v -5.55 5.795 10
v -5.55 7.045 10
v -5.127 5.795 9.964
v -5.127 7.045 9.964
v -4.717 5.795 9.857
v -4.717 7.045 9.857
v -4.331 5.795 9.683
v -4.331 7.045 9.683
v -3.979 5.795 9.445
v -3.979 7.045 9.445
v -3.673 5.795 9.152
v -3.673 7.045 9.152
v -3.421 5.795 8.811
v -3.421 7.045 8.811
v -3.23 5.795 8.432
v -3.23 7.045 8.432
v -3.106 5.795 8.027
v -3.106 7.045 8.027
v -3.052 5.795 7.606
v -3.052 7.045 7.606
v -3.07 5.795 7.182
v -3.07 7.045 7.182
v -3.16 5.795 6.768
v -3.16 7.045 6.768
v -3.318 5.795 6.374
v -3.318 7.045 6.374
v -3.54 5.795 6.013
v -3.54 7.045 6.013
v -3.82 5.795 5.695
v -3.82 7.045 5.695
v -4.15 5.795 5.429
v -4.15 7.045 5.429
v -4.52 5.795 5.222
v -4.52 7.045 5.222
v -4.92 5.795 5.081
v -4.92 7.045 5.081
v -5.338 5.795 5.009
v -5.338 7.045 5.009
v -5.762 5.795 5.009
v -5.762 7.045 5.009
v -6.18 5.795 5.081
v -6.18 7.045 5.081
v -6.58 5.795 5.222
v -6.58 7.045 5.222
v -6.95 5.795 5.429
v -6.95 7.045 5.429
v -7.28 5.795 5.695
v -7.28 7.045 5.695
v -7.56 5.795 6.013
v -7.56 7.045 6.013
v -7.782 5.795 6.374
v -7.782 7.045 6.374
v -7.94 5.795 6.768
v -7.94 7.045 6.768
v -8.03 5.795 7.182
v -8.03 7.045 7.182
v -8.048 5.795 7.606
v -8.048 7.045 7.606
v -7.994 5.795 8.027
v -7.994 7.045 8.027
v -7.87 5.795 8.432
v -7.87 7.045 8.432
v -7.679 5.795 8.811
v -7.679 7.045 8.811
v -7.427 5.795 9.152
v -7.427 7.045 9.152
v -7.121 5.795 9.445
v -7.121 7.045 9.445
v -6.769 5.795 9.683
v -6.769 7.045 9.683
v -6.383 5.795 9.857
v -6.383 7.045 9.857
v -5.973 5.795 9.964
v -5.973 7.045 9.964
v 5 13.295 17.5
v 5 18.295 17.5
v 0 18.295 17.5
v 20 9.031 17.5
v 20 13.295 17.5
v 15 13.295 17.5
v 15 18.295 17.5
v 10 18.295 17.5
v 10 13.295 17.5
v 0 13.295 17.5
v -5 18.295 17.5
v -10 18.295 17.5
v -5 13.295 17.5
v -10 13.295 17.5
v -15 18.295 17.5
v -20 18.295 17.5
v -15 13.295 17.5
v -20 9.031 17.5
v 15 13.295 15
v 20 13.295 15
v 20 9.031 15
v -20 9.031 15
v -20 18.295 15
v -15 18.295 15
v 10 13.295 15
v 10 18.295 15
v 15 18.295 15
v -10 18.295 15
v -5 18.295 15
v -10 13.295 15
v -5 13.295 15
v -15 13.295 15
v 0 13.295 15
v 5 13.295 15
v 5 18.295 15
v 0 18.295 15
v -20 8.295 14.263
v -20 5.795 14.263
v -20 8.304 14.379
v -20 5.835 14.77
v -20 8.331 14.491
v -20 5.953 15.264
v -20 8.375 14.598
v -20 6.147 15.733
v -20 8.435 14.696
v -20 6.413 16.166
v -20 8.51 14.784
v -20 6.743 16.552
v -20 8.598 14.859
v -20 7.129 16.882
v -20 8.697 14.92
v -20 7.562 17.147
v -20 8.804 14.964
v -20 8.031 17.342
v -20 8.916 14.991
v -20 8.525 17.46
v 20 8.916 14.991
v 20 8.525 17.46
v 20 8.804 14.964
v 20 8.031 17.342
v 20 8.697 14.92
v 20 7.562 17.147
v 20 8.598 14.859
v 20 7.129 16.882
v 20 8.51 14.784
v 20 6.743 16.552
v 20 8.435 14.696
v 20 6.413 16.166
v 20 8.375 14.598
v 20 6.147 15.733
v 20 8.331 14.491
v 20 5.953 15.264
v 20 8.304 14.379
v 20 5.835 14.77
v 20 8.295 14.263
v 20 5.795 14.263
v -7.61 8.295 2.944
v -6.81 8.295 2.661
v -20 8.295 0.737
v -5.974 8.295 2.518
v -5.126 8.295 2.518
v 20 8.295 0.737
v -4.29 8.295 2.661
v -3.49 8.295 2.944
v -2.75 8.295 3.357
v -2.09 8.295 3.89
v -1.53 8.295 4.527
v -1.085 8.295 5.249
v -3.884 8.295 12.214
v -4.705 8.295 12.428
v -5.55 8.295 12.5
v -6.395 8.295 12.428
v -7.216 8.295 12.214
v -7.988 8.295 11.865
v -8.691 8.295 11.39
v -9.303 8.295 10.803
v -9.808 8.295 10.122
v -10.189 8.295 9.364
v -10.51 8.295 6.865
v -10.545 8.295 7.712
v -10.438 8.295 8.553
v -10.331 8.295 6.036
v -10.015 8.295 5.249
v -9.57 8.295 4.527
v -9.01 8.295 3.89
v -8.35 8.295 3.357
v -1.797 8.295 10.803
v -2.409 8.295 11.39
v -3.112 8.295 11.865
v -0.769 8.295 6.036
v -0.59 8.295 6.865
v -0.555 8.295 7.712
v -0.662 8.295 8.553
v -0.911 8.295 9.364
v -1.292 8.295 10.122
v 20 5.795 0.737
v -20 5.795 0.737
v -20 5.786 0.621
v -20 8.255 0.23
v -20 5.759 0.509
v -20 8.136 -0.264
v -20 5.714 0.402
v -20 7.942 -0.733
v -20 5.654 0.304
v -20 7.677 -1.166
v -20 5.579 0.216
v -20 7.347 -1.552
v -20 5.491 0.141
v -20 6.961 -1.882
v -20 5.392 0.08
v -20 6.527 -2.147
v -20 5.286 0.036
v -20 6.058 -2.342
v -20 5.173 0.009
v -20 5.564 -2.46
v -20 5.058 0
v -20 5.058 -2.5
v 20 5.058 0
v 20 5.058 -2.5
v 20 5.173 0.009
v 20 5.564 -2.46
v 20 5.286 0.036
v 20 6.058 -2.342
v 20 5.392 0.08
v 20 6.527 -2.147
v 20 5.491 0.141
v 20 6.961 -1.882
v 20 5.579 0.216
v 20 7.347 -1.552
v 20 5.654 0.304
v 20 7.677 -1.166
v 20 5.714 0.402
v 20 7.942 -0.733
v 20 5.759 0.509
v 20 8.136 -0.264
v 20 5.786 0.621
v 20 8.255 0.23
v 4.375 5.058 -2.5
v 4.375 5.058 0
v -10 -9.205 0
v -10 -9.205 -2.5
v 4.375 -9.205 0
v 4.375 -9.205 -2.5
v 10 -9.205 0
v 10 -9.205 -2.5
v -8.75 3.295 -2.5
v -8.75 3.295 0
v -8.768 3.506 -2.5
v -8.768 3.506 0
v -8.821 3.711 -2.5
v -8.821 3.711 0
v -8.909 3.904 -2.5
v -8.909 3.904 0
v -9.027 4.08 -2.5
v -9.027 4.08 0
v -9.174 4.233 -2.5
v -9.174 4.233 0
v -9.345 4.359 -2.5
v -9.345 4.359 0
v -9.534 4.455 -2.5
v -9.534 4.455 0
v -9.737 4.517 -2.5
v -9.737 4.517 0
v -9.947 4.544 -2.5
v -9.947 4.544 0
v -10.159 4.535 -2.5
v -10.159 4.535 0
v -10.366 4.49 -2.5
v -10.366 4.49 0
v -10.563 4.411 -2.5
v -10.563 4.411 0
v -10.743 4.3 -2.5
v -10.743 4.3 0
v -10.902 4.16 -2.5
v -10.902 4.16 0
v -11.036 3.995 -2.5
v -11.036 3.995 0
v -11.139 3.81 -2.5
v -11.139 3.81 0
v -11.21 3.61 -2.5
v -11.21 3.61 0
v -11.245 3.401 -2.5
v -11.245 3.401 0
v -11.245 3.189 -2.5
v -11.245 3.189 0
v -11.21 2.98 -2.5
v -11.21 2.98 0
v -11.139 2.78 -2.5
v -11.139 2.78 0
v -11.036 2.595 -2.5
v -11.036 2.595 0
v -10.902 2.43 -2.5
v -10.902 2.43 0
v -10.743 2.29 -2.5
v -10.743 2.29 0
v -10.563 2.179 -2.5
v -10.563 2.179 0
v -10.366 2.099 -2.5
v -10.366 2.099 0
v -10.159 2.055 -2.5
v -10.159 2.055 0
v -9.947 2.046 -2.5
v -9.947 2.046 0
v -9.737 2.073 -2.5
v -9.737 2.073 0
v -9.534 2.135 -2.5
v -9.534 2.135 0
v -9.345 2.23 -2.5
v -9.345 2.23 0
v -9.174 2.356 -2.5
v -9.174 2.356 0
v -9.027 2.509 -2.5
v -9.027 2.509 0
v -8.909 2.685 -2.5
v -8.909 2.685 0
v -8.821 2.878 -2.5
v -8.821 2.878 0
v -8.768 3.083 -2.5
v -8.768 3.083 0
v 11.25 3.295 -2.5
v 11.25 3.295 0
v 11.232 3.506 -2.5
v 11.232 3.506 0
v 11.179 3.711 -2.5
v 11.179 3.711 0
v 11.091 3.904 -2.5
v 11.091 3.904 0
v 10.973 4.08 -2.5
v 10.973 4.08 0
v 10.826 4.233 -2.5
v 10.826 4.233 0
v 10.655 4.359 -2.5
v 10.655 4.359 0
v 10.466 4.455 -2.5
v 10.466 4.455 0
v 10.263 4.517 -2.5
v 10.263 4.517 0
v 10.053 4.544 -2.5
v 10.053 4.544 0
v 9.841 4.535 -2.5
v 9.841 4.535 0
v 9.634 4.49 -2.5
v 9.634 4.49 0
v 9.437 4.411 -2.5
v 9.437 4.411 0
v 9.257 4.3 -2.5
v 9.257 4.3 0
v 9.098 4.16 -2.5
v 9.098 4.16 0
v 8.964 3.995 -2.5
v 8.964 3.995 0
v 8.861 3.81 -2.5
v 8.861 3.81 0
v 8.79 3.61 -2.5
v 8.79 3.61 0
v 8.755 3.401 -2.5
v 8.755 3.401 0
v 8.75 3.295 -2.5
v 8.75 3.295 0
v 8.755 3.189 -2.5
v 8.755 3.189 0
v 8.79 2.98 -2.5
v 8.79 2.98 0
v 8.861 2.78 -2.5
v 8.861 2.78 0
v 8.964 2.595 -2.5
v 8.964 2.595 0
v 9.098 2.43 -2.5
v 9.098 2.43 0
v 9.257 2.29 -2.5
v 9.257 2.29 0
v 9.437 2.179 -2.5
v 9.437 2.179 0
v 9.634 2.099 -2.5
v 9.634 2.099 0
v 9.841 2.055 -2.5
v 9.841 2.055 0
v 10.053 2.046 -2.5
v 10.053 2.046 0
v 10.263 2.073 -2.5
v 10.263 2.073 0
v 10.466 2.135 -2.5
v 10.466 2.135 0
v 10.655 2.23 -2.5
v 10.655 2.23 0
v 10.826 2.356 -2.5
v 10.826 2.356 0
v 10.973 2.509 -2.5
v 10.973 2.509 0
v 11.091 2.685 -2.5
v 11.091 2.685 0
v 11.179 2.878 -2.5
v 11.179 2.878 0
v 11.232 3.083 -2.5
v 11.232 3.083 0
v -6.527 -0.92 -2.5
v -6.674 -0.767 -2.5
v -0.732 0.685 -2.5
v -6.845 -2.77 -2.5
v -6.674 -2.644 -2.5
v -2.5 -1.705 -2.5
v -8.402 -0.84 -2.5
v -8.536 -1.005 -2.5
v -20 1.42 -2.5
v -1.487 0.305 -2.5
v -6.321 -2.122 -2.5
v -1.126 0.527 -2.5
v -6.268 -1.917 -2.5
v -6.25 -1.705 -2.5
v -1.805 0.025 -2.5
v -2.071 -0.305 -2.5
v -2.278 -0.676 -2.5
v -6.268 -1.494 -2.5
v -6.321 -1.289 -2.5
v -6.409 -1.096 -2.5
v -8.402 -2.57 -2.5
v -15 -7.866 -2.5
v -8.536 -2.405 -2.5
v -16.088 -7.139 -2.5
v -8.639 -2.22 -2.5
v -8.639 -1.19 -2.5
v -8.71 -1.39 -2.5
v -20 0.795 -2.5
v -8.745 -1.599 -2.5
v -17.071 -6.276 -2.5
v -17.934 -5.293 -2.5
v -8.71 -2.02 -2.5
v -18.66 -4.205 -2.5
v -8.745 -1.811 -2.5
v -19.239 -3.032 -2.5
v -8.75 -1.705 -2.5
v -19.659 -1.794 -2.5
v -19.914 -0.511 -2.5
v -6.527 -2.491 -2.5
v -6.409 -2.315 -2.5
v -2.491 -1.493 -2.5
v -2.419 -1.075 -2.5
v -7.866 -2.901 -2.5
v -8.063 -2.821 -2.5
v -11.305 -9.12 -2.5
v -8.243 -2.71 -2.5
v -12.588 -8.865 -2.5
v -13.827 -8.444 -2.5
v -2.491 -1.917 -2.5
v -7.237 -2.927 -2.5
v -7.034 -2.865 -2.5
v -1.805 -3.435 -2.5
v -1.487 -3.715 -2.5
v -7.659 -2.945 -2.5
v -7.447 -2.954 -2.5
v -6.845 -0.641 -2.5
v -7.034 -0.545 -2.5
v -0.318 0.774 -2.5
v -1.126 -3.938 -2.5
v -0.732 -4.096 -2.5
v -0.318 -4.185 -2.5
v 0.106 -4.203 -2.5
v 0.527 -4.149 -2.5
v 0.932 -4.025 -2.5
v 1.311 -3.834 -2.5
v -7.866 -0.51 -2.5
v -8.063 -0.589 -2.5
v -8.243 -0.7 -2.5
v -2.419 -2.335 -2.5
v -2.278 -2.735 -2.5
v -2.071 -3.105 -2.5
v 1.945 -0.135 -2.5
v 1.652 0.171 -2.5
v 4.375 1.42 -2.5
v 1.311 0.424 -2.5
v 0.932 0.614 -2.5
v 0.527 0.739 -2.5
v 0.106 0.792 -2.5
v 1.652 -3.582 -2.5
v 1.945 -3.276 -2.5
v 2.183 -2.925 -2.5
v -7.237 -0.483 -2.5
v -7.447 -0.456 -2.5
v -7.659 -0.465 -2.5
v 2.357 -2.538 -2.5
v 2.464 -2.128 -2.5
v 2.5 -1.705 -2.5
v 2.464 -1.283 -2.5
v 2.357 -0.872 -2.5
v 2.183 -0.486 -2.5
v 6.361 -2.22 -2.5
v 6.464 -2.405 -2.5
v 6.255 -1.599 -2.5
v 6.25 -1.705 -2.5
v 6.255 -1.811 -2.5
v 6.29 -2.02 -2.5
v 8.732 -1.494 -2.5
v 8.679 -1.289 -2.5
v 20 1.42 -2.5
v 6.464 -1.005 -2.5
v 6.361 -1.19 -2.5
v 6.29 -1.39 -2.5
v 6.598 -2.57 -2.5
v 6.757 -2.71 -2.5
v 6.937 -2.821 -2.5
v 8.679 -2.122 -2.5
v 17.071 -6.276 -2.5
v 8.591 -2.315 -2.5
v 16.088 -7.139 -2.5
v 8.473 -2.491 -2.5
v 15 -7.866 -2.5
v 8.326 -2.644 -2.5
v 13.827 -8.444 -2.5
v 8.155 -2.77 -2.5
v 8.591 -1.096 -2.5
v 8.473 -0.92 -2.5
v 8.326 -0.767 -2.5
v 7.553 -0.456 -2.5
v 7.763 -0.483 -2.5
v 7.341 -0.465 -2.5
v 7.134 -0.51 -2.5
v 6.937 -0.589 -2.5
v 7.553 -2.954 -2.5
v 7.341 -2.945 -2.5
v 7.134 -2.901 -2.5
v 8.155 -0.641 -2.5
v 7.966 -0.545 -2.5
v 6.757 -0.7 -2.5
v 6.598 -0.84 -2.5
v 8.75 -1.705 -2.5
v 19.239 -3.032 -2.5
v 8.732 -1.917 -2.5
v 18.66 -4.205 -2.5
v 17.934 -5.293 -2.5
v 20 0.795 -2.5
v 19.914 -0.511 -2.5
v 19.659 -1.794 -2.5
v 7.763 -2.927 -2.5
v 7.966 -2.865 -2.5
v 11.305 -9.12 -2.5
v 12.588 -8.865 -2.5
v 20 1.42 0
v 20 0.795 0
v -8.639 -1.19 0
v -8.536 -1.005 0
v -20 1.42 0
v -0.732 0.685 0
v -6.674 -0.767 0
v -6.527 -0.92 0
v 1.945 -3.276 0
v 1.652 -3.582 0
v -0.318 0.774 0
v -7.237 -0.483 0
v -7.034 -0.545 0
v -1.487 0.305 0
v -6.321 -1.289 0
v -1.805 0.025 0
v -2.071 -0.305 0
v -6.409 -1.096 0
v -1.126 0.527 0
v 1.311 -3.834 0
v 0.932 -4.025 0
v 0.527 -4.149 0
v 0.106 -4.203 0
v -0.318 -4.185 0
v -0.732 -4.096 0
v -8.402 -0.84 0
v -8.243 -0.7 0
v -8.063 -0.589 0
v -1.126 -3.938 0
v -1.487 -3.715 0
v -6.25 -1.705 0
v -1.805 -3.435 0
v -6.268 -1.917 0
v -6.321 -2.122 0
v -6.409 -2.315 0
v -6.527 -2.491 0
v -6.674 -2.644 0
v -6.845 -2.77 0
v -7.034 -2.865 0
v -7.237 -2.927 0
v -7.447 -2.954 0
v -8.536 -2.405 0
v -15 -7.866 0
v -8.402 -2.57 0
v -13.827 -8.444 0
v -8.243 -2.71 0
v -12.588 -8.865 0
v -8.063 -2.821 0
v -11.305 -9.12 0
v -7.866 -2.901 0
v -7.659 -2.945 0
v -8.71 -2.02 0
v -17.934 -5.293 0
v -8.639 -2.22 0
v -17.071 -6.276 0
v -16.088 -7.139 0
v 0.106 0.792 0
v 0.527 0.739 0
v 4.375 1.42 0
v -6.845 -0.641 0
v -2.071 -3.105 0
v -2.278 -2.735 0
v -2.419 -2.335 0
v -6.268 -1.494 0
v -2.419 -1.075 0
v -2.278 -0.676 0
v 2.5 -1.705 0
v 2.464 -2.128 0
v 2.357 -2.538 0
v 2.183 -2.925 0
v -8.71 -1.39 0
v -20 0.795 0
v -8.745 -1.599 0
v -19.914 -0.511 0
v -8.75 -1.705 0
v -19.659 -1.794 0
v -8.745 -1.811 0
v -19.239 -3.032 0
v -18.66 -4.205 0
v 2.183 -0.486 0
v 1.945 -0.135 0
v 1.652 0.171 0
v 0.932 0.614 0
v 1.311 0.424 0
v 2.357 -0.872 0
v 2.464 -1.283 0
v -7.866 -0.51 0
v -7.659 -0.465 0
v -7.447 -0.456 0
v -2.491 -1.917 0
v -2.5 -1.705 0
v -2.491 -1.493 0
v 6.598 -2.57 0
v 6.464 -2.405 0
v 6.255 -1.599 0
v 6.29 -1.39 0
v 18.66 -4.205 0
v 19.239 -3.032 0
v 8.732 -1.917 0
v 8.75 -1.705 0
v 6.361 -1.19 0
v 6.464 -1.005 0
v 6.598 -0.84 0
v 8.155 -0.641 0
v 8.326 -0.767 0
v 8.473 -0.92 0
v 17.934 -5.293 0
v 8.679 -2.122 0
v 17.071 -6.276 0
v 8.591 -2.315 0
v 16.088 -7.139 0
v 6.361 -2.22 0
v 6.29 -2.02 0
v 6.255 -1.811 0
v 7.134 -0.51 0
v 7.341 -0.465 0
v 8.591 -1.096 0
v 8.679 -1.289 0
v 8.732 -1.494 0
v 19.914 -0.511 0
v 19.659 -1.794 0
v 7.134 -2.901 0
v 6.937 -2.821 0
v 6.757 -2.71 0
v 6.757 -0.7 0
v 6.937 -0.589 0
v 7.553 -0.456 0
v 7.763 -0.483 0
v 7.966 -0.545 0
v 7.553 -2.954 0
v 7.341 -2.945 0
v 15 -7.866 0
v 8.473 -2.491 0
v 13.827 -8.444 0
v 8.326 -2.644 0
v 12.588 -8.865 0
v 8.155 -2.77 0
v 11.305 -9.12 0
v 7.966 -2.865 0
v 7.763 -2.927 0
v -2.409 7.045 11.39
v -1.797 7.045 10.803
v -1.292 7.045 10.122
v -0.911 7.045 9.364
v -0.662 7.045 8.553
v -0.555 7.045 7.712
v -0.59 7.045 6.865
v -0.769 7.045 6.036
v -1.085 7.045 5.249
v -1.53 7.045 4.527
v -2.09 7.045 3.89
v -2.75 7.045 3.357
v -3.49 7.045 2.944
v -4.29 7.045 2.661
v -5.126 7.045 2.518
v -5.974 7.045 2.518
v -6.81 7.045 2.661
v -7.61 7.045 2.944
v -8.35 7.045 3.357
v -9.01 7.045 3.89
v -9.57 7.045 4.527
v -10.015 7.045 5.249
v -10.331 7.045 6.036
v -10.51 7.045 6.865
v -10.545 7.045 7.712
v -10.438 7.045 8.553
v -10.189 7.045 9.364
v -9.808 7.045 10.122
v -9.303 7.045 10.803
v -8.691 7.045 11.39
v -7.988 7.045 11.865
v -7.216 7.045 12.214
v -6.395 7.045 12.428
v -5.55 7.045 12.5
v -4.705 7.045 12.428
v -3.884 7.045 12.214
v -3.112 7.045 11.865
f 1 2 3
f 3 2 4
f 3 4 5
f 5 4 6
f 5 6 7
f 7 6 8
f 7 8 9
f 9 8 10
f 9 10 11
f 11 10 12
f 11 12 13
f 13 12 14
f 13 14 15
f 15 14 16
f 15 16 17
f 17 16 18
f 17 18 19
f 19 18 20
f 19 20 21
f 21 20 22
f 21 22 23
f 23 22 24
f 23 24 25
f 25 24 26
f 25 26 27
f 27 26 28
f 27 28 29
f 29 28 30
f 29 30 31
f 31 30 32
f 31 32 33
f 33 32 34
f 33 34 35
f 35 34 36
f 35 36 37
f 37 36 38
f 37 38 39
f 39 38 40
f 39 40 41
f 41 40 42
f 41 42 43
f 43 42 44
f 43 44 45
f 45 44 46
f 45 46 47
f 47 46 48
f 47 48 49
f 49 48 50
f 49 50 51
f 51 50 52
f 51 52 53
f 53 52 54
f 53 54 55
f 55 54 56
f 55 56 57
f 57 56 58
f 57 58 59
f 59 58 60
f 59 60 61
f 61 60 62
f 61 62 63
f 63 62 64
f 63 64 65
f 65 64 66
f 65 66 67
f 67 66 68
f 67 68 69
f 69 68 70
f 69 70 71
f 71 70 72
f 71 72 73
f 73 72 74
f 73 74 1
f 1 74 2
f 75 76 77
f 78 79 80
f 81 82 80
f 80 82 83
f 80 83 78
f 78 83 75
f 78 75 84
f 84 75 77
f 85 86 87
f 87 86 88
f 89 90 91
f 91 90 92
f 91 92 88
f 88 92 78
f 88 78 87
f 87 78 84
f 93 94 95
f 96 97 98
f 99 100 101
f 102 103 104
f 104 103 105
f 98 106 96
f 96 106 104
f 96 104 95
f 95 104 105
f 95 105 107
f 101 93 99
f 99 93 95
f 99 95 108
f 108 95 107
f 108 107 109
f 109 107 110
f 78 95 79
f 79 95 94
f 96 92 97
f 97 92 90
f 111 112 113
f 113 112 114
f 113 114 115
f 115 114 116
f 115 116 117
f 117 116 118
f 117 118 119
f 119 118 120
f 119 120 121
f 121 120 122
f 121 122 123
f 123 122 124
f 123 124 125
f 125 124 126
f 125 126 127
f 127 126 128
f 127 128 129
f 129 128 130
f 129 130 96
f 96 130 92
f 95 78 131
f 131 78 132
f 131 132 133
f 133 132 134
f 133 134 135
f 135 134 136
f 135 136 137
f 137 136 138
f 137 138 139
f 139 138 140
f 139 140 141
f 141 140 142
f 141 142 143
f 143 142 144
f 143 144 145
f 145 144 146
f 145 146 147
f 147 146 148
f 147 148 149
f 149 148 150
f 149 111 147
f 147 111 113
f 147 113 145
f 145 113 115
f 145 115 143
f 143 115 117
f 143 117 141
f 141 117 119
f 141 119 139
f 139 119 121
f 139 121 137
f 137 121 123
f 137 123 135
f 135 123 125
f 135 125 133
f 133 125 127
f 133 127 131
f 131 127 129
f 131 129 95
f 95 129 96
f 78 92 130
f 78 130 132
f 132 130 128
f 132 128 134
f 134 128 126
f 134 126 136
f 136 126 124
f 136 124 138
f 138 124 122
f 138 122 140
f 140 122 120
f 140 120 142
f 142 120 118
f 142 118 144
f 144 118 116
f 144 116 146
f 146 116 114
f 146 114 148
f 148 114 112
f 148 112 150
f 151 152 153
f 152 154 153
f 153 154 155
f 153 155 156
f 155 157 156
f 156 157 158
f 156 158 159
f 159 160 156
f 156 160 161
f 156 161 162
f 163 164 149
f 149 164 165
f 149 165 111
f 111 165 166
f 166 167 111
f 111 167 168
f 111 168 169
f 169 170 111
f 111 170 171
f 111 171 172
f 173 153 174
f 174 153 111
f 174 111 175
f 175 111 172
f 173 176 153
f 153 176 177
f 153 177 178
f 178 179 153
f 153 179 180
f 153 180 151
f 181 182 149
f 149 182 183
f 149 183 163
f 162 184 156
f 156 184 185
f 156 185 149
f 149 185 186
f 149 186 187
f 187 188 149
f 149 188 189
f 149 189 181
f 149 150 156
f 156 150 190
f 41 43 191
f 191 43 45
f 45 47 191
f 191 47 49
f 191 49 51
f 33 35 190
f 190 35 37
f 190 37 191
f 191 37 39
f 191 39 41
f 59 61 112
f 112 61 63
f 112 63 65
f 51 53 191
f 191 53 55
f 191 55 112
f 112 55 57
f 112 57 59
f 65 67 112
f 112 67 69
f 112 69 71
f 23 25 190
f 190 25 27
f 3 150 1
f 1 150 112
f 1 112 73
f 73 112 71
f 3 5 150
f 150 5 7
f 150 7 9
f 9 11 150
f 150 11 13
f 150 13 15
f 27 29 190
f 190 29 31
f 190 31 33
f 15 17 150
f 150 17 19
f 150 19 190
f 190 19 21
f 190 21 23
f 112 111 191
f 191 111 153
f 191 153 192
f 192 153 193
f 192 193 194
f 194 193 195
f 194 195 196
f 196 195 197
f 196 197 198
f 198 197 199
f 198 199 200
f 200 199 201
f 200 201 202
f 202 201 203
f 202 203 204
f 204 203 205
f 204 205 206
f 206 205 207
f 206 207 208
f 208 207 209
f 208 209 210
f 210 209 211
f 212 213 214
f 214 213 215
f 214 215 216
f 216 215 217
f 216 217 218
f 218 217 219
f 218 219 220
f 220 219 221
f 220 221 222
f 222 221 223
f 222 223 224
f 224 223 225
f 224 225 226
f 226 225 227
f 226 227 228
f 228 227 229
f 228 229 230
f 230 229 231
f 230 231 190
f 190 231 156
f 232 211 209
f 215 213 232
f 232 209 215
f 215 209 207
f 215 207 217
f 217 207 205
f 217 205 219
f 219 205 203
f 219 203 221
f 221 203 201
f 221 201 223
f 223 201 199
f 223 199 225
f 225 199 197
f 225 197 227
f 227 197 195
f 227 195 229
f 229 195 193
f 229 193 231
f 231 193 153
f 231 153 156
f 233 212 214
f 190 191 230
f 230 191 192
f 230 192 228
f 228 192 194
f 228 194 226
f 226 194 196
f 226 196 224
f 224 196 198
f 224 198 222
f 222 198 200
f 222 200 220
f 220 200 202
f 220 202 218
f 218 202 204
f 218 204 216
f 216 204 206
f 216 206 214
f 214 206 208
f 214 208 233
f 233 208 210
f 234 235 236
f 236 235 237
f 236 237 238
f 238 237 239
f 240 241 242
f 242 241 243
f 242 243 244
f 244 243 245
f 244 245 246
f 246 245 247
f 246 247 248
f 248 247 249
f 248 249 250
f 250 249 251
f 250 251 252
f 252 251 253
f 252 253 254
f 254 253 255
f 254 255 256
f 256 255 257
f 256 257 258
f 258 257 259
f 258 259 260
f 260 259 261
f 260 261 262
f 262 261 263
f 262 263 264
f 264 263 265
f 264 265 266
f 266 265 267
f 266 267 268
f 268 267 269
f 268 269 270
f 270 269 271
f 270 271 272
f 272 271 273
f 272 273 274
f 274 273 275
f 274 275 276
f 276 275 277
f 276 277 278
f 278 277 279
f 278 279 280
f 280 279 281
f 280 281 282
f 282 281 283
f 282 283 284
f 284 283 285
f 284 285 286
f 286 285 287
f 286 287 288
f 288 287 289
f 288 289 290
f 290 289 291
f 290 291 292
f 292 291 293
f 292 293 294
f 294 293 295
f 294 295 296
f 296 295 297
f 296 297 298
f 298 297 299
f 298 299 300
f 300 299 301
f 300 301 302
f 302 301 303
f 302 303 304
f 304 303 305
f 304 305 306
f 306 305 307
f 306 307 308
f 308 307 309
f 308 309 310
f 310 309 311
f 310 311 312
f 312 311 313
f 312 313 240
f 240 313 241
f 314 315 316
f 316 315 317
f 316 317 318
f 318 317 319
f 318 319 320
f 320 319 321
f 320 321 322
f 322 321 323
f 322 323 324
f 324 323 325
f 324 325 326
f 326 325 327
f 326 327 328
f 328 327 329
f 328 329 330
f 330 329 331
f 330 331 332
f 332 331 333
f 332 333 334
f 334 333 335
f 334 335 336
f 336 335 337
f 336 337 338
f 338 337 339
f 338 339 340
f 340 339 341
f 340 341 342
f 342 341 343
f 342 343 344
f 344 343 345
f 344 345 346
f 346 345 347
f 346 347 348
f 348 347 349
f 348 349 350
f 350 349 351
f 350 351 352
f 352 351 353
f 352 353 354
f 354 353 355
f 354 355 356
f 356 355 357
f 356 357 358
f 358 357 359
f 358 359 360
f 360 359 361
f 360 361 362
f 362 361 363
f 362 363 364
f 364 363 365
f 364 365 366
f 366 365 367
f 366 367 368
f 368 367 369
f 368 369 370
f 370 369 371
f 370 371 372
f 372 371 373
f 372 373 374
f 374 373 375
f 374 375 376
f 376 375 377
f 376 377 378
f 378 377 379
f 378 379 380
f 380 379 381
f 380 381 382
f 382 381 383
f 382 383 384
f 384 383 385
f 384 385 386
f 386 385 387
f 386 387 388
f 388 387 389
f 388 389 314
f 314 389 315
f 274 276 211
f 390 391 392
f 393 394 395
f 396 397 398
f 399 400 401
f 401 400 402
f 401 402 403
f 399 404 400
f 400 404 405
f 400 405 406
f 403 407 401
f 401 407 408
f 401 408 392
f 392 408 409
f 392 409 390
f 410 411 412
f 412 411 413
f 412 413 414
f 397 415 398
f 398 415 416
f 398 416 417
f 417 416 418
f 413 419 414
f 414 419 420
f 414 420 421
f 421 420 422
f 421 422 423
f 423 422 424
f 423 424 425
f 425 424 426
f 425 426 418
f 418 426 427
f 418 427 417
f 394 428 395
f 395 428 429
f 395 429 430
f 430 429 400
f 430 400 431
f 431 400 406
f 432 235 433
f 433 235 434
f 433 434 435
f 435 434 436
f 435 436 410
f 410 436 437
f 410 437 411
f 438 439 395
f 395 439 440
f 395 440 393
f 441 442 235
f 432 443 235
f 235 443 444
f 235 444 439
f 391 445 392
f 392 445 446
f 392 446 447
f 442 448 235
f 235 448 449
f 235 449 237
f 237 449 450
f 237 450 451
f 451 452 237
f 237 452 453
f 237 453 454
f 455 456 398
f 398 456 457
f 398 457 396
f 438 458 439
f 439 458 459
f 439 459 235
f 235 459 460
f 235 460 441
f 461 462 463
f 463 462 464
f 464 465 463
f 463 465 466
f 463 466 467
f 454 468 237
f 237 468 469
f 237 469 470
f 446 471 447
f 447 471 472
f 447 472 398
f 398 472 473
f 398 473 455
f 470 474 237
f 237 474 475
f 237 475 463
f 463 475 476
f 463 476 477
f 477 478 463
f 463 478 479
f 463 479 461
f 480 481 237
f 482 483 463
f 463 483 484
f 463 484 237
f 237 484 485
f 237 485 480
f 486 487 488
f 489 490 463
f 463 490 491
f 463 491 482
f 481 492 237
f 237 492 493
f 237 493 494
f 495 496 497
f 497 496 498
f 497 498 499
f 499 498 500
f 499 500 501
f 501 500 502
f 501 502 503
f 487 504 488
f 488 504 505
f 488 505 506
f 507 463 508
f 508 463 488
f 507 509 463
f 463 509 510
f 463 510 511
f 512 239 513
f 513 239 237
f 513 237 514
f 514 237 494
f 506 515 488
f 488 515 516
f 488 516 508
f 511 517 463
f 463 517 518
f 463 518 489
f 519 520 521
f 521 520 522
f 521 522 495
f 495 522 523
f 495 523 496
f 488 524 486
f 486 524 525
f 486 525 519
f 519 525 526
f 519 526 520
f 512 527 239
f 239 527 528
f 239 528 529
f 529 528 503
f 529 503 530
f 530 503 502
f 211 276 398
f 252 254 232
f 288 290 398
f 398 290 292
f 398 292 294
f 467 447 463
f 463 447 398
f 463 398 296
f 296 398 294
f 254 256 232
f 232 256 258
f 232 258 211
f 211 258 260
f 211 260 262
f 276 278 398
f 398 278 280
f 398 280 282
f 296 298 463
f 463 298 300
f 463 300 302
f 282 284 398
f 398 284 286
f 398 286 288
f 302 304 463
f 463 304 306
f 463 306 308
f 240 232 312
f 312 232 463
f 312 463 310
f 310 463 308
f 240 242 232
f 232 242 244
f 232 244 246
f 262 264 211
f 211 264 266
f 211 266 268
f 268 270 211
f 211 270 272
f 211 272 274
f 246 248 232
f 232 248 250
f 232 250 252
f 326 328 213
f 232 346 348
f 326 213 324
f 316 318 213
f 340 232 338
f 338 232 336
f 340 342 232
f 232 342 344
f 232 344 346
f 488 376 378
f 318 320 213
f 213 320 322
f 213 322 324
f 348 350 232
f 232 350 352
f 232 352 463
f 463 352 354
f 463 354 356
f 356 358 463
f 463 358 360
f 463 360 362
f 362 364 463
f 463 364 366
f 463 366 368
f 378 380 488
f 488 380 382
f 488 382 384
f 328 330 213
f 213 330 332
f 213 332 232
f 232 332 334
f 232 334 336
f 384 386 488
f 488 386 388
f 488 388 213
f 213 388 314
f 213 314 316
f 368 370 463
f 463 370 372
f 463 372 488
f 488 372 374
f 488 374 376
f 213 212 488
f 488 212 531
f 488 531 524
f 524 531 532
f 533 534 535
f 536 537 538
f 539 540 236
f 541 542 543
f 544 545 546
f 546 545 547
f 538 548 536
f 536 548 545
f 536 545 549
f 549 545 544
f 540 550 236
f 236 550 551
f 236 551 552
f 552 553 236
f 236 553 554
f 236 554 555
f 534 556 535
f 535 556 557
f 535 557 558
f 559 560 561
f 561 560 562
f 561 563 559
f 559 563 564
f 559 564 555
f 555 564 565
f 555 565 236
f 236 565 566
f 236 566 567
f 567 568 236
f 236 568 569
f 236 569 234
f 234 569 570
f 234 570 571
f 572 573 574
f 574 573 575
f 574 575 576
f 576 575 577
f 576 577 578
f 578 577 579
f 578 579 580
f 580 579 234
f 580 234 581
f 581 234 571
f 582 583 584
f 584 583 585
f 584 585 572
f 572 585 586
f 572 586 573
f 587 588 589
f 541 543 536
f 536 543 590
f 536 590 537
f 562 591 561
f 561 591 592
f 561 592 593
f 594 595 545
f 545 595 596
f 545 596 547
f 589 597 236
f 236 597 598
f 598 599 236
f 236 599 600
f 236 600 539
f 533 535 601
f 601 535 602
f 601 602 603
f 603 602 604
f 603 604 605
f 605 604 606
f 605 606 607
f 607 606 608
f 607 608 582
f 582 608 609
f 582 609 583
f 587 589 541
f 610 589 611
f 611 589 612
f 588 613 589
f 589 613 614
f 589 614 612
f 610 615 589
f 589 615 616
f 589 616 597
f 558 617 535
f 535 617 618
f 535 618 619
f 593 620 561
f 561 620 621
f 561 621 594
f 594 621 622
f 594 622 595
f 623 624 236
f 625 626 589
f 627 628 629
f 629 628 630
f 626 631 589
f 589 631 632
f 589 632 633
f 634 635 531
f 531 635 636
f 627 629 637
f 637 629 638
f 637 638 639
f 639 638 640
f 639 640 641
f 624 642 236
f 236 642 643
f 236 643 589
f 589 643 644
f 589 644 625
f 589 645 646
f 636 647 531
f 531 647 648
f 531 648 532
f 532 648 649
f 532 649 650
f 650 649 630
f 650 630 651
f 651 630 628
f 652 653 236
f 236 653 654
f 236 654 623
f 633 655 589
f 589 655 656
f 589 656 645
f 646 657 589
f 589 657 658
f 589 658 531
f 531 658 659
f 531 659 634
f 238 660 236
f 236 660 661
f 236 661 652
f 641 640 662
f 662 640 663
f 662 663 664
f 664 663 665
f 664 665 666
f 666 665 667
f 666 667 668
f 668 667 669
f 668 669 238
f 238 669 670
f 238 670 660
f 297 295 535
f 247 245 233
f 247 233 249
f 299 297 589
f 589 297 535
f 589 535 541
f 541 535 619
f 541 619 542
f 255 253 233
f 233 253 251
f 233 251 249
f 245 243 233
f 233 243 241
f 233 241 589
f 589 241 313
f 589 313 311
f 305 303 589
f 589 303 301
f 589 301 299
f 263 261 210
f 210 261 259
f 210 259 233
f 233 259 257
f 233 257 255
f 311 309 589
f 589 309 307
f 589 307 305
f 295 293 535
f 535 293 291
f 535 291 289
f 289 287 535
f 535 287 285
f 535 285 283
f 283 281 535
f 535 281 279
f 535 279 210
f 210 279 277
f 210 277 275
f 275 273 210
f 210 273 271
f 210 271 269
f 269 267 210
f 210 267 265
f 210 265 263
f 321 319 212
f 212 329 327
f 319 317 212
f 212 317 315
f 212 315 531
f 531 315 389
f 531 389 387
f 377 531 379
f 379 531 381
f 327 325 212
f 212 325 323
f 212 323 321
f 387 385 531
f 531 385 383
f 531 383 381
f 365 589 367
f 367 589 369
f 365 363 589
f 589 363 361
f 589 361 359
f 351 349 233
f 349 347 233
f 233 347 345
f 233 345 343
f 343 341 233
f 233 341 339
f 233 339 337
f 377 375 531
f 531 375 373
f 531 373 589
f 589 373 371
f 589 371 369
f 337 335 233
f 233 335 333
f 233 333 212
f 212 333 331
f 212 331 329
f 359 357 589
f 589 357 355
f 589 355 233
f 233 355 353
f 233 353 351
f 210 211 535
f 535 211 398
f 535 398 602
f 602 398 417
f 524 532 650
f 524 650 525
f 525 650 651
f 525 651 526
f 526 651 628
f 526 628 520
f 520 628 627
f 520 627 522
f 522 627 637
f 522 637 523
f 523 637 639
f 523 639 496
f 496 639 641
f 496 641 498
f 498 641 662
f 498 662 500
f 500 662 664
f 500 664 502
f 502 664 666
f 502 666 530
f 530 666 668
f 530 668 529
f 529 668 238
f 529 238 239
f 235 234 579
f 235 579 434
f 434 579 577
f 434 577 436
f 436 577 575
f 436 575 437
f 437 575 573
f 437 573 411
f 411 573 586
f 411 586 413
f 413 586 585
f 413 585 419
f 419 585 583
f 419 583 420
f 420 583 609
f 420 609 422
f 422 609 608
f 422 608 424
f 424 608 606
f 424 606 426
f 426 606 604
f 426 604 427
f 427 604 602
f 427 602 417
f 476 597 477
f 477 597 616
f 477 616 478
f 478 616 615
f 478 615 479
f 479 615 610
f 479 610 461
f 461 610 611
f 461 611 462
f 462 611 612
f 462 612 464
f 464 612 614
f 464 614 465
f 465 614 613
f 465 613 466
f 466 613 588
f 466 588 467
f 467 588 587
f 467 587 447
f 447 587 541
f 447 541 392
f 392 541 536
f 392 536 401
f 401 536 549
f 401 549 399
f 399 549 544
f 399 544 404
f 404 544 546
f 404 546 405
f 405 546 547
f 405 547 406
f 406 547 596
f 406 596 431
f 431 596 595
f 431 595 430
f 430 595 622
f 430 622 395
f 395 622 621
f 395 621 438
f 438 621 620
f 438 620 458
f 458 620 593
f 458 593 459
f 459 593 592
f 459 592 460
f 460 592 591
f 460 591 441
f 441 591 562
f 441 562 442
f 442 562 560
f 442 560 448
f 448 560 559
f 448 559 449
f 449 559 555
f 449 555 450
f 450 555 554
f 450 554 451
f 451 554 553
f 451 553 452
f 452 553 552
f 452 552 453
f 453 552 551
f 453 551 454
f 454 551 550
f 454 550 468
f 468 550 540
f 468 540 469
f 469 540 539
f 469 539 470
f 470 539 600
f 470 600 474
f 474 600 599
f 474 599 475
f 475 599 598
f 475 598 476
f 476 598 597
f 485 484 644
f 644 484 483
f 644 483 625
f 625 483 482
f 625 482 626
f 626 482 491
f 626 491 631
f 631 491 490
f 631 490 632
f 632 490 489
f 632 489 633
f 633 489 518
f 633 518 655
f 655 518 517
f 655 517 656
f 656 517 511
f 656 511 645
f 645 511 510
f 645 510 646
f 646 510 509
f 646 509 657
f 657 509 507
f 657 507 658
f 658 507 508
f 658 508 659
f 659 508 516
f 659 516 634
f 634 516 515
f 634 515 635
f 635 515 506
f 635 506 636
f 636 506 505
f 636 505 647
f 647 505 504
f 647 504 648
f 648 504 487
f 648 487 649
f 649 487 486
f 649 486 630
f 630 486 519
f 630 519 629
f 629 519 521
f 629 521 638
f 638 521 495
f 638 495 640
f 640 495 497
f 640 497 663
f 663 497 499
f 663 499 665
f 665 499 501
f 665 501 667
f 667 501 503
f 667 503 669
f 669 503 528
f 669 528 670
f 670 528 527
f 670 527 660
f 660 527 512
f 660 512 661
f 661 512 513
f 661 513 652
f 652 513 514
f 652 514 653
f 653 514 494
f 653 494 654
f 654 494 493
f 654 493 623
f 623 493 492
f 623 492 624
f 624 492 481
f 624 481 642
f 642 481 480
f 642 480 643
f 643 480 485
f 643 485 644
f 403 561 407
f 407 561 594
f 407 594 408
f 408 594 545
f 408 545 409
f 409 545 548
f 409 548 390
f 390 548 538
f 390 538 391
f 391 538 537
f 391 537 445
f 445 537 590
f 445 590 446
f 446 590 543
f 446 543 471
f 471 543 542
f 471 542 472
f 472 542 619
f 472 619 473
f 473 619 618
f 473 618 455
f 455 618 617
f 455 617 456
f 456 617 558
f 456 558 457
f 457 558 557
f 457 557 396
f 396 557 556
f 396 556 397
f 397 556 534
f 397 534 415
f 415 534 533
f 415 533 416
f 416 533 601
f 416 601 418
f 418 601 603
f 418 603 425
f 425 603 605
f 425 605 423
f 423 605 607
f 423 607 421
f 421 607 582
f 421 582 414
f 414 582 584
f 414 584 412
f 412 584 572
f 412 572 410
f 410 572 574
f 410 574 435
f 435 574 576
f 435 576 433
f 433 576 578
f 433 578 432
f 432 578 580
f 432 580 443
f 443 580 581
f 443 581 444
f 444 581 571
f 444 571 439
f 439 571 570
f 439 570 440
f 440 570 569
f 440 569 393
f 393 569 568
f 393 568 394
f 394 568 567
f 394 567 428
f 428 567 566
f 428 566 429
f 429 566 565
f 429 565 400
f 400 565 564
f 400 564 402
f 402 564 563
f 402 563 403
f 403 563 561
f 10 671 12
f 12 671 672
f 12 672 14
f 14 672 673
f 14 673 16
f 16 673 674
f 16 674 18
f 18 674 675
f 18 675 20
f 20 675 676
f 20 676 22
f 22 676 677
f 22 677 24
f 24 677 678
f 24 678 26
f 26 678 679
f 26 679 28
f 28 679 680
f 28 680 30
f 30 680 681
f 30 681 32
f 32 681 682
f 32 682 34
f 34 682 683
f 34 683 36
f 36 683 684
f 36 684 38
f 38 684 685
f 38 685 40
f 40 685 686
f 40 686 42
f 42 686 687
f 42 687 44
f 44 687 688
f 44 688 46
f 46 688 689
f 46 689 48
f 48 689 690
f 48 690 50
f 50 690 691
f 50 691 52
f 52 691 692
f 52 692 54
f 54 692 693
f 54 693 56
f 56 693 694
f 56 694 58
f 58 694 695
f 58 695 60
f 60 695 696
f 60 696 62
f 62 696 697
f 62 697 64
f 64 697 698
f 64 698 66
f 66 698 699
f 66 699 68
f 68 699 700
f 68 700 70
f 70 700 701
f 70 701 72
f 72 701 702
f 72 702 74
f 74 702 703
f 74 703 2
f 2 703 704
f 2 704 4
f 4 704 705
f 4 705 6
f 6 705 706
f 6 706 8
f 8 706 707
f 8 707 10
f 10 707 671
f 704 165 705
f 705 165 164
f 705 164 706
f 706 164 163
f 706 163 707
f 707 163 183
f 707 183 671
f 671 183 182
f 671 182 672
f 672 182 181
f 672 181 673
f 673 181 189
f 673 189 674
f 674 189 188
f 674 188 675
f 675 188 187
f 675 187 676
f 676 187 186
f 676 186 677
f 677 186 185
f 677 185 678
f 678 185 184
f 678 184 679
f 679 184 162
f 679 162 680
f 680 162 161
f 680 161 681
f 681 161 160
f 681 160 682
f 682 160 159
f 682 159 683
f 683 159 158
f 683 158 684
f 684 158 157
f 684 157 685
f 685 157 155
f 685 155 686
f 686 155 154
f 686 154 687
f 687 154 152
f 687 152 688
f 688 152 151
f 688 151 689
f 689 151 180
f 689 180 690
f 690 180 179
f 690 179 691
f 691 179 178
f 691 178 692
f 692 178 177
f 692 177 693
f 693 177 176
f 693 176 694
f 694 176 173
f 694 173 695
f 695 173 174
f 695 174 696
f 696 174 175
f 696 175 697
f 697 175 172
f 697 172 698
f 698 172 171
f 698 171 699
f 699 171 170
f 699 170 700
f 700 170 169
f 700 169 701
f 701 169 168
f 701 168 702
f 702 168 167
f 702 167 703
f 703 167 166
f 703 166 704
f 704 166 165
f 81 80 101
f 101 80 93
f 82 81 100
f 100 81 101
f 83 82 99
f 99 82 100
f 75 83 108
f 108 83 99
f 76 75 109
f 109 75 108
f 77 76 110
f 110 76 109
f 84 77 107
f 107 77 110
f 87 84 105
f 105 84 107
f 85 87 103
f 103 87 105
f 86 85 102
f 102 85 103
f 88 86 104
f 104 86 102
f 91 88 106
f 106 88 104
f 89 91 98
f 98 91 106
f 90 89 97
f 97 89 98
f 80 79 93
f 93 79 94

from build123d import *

# Parameters (mm, degrees)
SKETCH1_W           = 40
SKETCH1_H           = 50
SKETCH1_R           = 1.25
BASE_FLANGE1_DEPTH  = 2.5
SKETCH15_R          = 1
CUT_EXTRUDE3_DEPTH  = 10
JOG3_START          = -2.5
JOG3_OUTLINE_W      = 40
JOG3_OUTLINE_H      = 48.294687966
JOG3_OUTLINE_R      = 1
JOG3_OUTLINE_R_2    = 1.25
JOG3_DEPTH          = 2.5
JOG3_2_OUTLINE_W    = 40
JOG3_2_OUTLINE_H    = 1.705312034
JOG3_2_DEPTH        = 0.332528284
JOG3_START_2        = 14.2634
JOG3_3_OUTLINE_W    = 40
JOG3_3_OUTLINE_H    = 35
JOG3_3_OUTLINE_R    = 1
JOG3_3_OUTLINE_R_2  = 1.25
JOG3_3_DEPTH        = 3.2366
JOG3_4_OUTLINE_W    = 40
JOG3_4_OUTLINE_H    = 15.794687966
JOG3_4_OUTLINE_R    = 1.25
JOG3_4_DEPTH        = 3.2366
JOG3_5_OUTLINE_W    = 40
JOG3_5_OUTLINE_H    = 2.5
JOG3_5_DEPTH        = 15
JOG3_START_3        = 15
JOG3_6_OUTLINE_R    = 1.25
JOG3_6_OUTLINE_R_2  = 1
JOG3_6_DEPTH        = 2.5
JOG3_START_4        = -20
JOG3_7_DEPTH        = 40
JOG4_START          = -20
JOG4_DEPTH          = 40
JOG4_2_DEPTH        = 40
JOG4_START_2        = -3
JOG4_3_OUTLINE_R    = 1.25
JOG4_3_DEPTH        = 4
FILLET1_R           = 10
SKETCH18_R          = 2.5
BOSS_EXTRUDE1_DEPTH = 2.5
SKETCH19_R          = 1
SKETCH19_W          = 23.5
SKETCH19_H          = 12.5
CUT_EXTRUDE4_DEPTH  = 2.5
SKETCH20_R          = 2.5
SKETCH20_R_2        = 1.25
CUT_EXTRUDE6_DEPTH  = 10
SKETCH23_R          = 2.5
CUT_EXTRUDE7_DEPTH  = 44.945989578
SKETCH24_R          = 5
CUT_EXTRUDE8_DEPTH  = 1.25
SKETCH25_W          = 40
SKETCH25_H          = 18.401872862
CUT_EXTRUDE9_DEPTH  = 50.640775238


with BuildPart() as part:
    # Base-Flange1: sheet metal written as solids
    # Sketch1 → Base-Flange1 (new body)
    with BuildSketch(Plane.XY):
        Rectangle(SKETCH1_W, SKETCH1_H)
        with Locations((10, 12.5)):
            Circle(SKETCH1_R, mode=Mode.SUBTRACT)
        with Locations(Location((10, -12.5, 0), (0, 0, 180))):
            Circle(SKETCH1_R, mode=Mode.SUBTRACT)
        with Locations((-10, -12.5)):
            Circle(SKETCH1_R, mode=Mode.SUBTRACT)
        with Locations(Location((-10, 12.5, 0), (0, 0, 180))):
            Circle(SKETCH1_R, mode=Mode.SUBTRACT)
    extrude(amount=-BASE_FLANGE1_DEPTH)

    # Sketch15 → Cut-Extrude3 (cut)
    with BuildSketch(Plane.XY):
        with Locations((12, 0)):
            Circle(SKETCH15_R)
        with Locations(Location((-17, 0, 0), (0, 0, 180))):
            Circle(SKETCH15_R)
    extrude(amount=-CUT_EXTRUDE3_DEPTH, mode=Mode.SUBTRACT)

    # Jog3: read off the stored shape, not the designer's step
    # Jog3 outline → Jog3 (cut)
    with BuildSketch(Plane.XY.offset(JOG3_START)):
        with Locations((0, -0.852656017)):
            Rectangle(JOG3_OUTLINE_W, JOG3_OUTLINE_H)
        with Locations((-17, 0)):
            Circle(JOG3_OUTLINE_R, mode=Mode.SUBTRACT)
        with Locations((12, 0)):
            Circle(JOG3_OUTLINE_R, mode=Mode.SUBTRACT)
        with Locations((-10, 12.5)):
            Circle(JOG3_OUTLINE_R_2, mode=Mode.SUBTRACT)
        with Locations((10, 12.5)):
            Circle(JOG3_OUTLINE_R_2, mode=Mode.SUBTRACT)
        with Locations((10, -12.5)):
            Circle(JOG3_OUTLINE_R_2, mode=Mode.SUBTRACT)
        with Locations((-10, -12.5)):
            Circle(JOG3_OUTLINE_R_2, mode=Mode.SUBTRACT)
    extrude(amount=JOG3_DEPTH, mode=Mode.SUBTRACT)

    # Jog3 2 outline → Jog3 2 (cut)
    with BuildSketch(Plane.XY.offset(JOG3_START)):
        with Locations((0, 24.147343983)):
            Rectangle(JOG3_2_OUTLINE_W, JOG3_2_OUTLINE_H)
    extrude(amount=JOG3_2_DEPTH, mode=Mode.SUBTRACT)

    # Jog3 4 outline → Jog3 4 (add)
    with BuildSketch(Plane.XY.offset(JOG3_START)):
        with Locations((0, 32.897343983)):
            Rectangle(JOG3_4_OUTLINE_W, JOG3_4_OUTLINE_H)
        with Locations((10, 28.294687966)):
            Circle(JOG3_4_OUTLINE_R, mode=Mode.SUBTRACT)
        with Locations((-10, 28.294687966)):
            Circle(JOG3_4_OUTLINE_R, mode=Mode.SUBTRACT)
    extrude(amount=JOG3_4_DEPTH)



with BuildPart() as body_2:
    # Jog3 3 outline → Jog3 3 (new body)
    with BuildSketch(Plane.XY.offset(JOG3_START_2)):
        with Locations((0, 8.294687966)):
            Rectangle(JOG3_3_OUTLINE_W, JOG3_3_OUTLINE_H)
        with Locations((12, 15.794687966)):
            Circle(JOG3_3_OUTLINE_R, mode=Mode.SUBTRACT)
        with Locations((-17, 0)):
            Circle(JOG3_3_OUTLINE_R, mode=Mode.SUBTRACT)
        with Locations((-10, 3.294687966)):
            Circle(JOG3_3_OUTLINE_R_2, mode=Mode.SUBTRACT)
        with Locations((12, 0)):
            Circle(JOG3_3_OUTLINE_R, mode=Mode.SUBTRACT)
        with Locations((10, 3.294687966)):
            Circle(JOG3_3_OUTLINE_R_2, mode=Mode.SUBTRACT)
        with Locations((-17, 15.794687966)):
            Circle(JOG3_3_OUTLINE_R, mode=Mode.SUBTRACT)
        with Locations((-10, 12.5)):
            Circle(JOG3_3_OUTLINE_R_2, mode=Mode.SUBTRACT)
        with Locations((10, 12.5)):
            Circle(JOG3_3_OUTLINE_R_2, mode=Mode.SUBTRACT)
    extrude(amount=JOG3_3_DEPTH)


with BuildPart() as part_1:
    add(part.part)

    add(body_2.part)  # Jog3 5 merges body 2
    # Jog3 5 outline → Jog3 5 (add)
    with BuildSketch(Plane.XY):
        with Locations((0, 24.544687966)):
            Rectangle(JOG3_5_OUTLINE_W, JOG3_5_OUTLINE_H)
    extrude(amount=JOG3_5_DEPTH)

    # Jog3 6 outline → Jog3 6 (add)
    with BuildSketch(Plane.XY.offset(JOG3_START_3)):
        with Locations((10, 12.5)):
            Circle(JOG3_6_OUTLINE_R)
        with Locations((-10, 12.5)):
            Circle(JOG3_6_OUTLINE_R)
        with Locations((12, 0)):
            Circle(JOG3_6_OUTLINE_R_2)
        with Locations((-17, 0)):
            Circle(JOG3_6_OUTLINE_R_2)
    extrude(amount=JOG3_6_DEPTH)

    # Jog3 7 outline → Jog3 7 (cut)
    with BuildSketch(Plane.YZ.offset(JOG3_START_4)):
        with BuildLine():
            ThreePointArc((23.294687966, 14.2634), (23.078942821, 14.784254855), (22.558087966, 15))
            Line((22.558087966, 15), (-9.205312034, 15))
            Line((-9.205312034, 15), (-9.205312034, 14.2634))
            Line((-9.205312034, 14.2634), (23.294687966, 14.2634))
        make_face()
        with BuildLine():
            ThreePointArc((26.531287966, -2.5), (24.242666158, -1.552021808), (23.294687966, 0.7366))
            Line((23.294687966, 0.7366), (23.294687966, -2.167471716))
            Line((23.294687966, -2.167471716), (25, -2.167471716))
            Line((25, -2.167471716), (25, -2.5))
            Line((25, -2.5), (26.531287966, -2.5))
        make_face()
        with BuildLine():
            Line((26.531287966, 0), (40.794687966, 0))
            Line((40.794687966, 0), (40.794687966, 0.7366))
            Line((40.794687966, 0.7366), (25.794687966, 0.7366))
            ThreePointArc((25.794687966, 0.7366), (26.010433111, 0.215745145), (26.531287966, 0))
        make_face()
        with BuildLine():
            Line((25.794687966, 17.5), (22.558087966, 17.5))
            ThreePointArc((22.558087966, 17.5), (24.846709774, 16.552021808), (25.794687966, 14.2634))
            Line((25.794687966, 14.2634), (25.794687966, 17.5))
        make_face()
    extrude(amount=JOG3_7_DEPTH, mode=Mode.SUBTRACT)

    # Jog4: read off the stored shape, not the designer's step
    # Jog4 outline → Jog4 (cut)
    with BuildSketch(Plane.YZ.offset(JOG4_START)):
        with BuildLine():
            Line((-9.205312034, 15), (5.87962174, 15))
            ThreePointArc((5.87962174, 15), (7.019882984, 16.799110859), (9.031287966, 17.5))
            Line((9.031287966, 17.5), (-9.205312034, 17.5))
            Line((-9.205312034, 17.5), (-9.205312034, 15))
        make_face()
    extrude(amount=JOG4_DEPTH, mode=Mode.SUBTRACT)

    # Jog4 2 outline → Jog4 2 (add)
    with BuildSketch(Plane.YZ.offset(JOG4_START)):
        with BuildLine():
            Line((-9.205312034, 0), (-9.205312034, -2.5))
            Line((-9.205312034, -2.5), (5.058087966, -2.5))
            ThreePointArc((5.058087966, -2.5), (7.346709774, -1.552021808), (8.294687966, 0.7366))
            Line((8.294687966, 0.7366), (8.294687966, 14.2634))
            ThreePointArc((8.294687966, 14.2634), (8.510433111, 14.784254855), (9.031287966, 15))
            Line((9.031287966, 15), (5.87962174, 15))
            ThreePointArc((5.87962174, 15), (5.81599152, 14.634140241), (5.794687966, 14.2634))
            Line((5.794687966, 14.2634), (5.794687966, 0.7366))
            ThreePointArc((5.794687966, 0.7366), (5.578942821, 0.215745145), (5.058087966, 0))
            Line((5.058087966, 0), (-9.205312034, 0))
        make_face()
    extrude(amount=JOG4_2_DEPTH)

    # Jog4 3 outline → Jog4 3 (cut)
    with BuildSketch(Plane.XY.offset(JOG4_START_2)):
        with Locations((-10, 3.294687966)):
            Circle(JOG4_3_OUTLINE_R)
        with Locations((10, 3.294687966)):
            Circle(JOG4_3_OUTLINE_R)
    extrude(amount=JOG4_3_DEPTH, mode=Mode.SUBTRACT)

    # Fillet1
    fillet1_edges = [part_1.edges().sort_by_distance(p)[0] for p in [
        (20, -9.205312034, -1.25),
        (-20, -9.205312034, -1.25),
        (-20, 40.794687966, -1.25),
        (20, 40.794687966, -1.25),
    ]]
    fillet(fillet1_edges, radius=FILLET1_R)

    # Sketch18 → Boss-Extrude1 (add)
    with BuildSketch(Plane.XY.offset(17.5)):
        with Locations((12, 15.794687966)):
            Circle(SKETCH18_R)
        with Locations((-17, 15.794687966)):
            Circle(SKETCH18_R)
    extrude(amount=-BOSS_EXTRUDE1_DEPTH)

    # Sketch19 → Cut-Extrude4 (cut)
    with BuildSketch(Plane(origin=(0, 25.794687966, 0), x_dir=(1, 0, 0), z_dir=(0, 1, 0))):
        with Locations(Location((13.9, -7.5, 0), (0, 0, 270))):
            Circle(SKETCH19_R)
        with Locations(Location((-13.9, -7.5, 0), (0, 0, 90))):
            Circle(SKETCH19_R)
        with Locations((0, -7.5)):
            Rectangle(SKETCH19_W, SKETCH19_H)
    extrude(amount=-CUT_EXTRUDE4_DEPTH, mode=Mode.SUBTRACT)

    # Sketch20 → Cut-Extrude6 (cut)
    with BuildSketch(Plane.XY):
        with Locations((0, 33.294687966)):
            Circle(SKETCH20_R)
        with Locations(Location((0, -1.705312034, 0), (0, 0, 180))):
            Circle(SKETCH20_R)
        with Locations((7.5, -1.705312034)):
            Circle(SKETCH20_R_2)
        with Locations(Location((-7.5, -1.705312034, 0), (0, 0, 180))):
            Circle(SKETCH20_R_2)
        with Locations(Location((7.5, 33.294687966, 0), (0, 0, 180))):
            Circle(SKETCH20_R_2)
        with Locations((-7.5, 33.294687966)):
            Circle(SKETCH20_R_2)
    extrude(amount=-CUT_EXTRUDE6_DEPTH, mode=Mode.SUBTRACT)

    # Sketch23 → Cut-Extrude7 (cut, through all)
    with BuildSketch(Plane(origin=(0, 25.794687966, 0), x_dir=(1, 0, 0), z_dir=(0, 1, 0))):
        with Locations(Location((-5.55, -7.5, 0), (0, 0, 270))):
            Circle(SKETCH23_R)
    extrude(amount=-CUT_EXTRUDE7_DEPTH, mode=Mode.SUBTRACT)

    # Sketch24 → Cut-Extrude8 (cut)
    with BuildSketch(Plane(origin=(0, 8.294687966, 0), x_dir=(1, 0, 0), z_dir=(0, 1, 0))):
        with Locations(Location((-5.55, -7.5, 0), (0, 0, 270))):
            Circle(SKETCH24_R)
    extrude(amount=-CUT_EXTRUDE8_DEPTH, mode=Mode.SUBTRACT)

    # Sketch25 → Cut-Extrude9 (cut, through all)
    with BuildSketch(Plane.XY.offset(17.5)):
        Polygon((-20, 22.558087966), (-20, 18.294687966), (-15, 18.294687966), (-15, 13.294687966), (-10, 13.294687966), (-10, 15.794687966), (-10, 18.294687966), (-5, 18.294687966), (-5, 13.294687966), (0, 13.294687966), (0, 15.794687966), (0, 18.294687966), (5, 18.294687966), (5, 13.294687966), (10, 13.294687966), (10, 15.794687966), (10, 18.294687966), (15, 18.294687966), (15, 13.294687966), (20, 13.294687966), (20, 15.794687966), (20, 22.558087966), align=None)
        with Locations((0, 31.759024397)):
            Rectangle(SKETCH25_W, SKETCH25_H)
    extrude(amount=-CUT_EXTRUDE9_DEPTH, mode=Mode.SUBTRACT)


solid = part_1.part
